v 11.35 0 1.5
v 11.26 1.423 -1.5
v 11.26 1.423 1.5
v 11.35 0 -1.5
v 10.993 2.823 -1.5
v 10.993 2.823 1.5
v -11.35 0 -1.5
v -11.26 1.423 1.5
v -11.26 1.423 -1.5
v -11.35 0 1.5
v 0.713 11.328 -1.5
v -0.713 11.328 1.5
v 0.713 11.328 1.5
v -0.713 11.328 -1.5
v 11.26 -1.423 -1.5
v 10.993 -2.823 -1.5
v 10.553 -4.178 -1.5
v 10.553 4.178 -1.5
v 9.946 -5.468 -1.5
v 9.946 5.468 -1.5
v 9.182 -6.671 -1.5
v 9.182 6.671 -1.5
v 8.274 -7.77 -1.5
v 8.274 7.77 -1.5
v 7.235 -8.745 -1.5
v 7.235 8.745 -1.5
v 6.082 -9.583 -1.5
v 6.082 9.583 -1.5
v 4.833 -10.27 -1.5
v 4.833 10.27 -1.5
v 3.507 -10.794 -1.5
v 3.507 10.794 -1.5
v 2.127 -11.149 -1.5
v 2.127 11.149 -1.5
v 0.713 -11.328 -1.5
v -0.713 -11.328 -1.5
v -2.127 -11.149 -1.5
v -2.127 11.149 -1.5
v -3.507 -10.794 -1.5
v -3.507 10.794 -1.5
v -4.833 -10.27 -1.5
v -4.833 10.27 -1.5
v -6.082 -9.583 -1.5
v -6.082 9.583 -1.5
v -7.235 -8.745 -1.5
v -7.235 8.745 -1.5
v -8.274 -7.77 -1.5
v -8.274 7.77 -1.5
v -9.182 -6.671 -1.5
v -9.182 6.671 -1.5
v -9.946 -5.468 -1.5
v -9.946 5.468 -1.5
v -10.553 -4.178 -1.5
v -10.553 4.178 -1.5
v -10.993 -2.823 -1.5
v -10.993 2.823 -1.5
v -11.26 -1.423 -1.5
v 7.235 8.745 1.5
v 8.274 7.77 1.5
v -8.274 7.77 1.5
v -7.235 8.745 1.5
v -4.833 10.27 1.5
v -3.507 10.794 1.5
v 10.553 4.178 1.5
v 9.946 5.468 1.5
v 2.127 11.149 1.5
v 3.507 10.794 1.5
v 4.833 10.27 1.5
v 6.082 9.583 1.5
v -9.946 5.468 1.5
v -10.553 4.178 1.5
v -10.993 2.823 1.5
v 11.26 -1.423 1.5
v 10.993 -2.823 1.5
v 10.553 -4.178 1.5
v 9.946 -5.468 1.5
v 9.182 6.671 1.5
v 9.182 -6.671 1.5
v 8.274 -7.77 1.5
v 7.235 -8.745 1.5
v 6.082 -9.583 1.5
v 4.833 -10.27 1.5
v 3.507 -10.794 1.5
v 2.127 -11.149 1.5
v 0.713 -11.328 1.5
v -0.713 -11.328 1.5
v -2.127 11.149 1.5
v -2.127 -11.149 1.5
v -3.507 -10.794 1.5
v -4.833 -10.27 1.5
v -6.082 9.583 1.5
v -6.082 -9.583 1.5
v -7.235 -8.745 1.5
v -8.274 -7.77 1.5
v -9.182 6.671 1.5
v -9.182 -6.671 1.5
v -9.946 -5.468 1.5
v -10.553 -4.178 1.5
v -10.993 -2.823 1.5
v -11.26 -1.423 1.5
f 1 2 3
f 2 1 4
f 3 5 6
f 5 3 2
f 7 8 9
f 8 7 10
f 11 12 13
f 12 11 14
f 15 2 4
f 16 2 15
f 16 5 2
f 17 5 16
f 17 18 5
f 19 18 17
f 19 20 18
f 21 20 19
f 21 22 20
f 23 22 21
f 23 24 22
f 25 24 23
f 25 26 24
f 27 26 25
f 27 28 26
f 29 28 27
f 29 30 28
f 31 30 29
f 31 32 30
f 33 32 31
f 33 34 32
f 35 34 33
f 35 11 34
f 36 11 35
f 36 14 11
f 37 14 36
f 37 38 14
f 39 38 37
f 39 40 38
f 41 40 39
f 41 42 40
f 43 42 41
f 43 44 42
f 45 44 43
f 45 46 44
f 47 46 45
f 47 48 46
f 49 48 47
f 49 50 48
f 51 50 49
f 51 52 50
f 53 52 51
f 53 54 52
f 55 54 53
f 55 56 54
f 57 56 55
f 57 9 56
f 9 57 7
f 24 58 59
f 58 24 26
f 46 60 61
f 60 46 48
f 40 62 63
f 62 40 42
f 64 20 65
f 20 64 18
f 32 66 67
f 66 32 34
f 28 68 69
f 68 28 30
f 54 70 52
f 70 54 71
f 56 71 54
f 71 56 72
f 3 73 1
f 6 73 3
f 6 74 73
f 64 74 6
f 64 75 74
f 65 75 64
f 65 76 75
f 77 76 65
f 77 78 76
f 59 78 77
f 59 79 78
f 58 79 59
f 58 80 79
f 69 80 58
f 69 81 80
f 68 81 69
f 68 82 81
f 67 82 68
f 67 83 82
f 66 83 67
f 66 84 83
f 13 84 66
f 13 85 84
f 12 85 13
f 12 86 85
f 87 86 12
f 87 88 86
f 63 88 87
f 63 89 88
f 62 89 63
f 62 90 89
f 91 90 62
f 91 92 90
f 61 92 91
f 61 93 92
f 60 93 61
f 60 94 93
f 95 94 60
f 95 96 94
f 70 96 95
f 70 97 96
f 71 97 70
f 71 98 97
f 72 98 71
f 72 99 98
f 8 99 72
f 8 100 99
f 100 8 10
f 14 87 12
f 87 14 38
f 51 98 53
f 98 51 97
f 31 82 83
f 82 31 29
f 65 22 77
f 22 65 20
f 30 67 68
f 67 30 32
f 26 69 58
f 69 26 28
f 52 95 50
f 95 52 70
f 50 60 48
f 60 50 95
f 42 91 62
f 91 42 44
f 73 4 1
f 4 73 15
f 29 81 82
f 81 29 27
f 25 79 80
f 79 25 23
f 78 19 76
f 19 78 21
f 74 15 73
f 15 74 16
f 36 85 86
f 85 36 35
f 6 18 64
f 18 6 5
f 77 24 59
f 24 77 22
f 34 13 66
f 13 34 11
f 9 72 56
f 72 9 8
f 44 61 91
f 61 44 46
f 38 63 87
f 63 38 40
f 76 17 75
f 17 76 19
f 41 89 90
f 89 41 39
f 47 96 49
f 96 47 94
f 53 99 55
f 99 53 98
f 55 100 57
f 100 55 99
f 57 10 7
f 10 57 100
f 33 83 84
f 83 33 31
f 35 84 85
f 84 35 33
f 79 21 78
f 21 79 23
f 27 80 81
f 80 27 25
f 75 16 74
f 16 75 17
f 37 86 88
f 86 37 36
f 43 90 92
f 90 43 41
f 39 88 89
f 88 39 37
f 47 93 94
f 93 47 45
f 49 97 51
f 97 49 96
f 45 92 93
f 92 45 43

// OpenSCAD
$fn = 50;


difference() {
	union() {
		translate(v = [0, 0, -1.5000000000]) {
			cylinder(h = 3, r = 11.3500000000);
		}
	}
	union() {
		translate(v = [0, 0, -100.0000000000]) {
			cylinder(h = 200, r = 0);
		}
	}
}
